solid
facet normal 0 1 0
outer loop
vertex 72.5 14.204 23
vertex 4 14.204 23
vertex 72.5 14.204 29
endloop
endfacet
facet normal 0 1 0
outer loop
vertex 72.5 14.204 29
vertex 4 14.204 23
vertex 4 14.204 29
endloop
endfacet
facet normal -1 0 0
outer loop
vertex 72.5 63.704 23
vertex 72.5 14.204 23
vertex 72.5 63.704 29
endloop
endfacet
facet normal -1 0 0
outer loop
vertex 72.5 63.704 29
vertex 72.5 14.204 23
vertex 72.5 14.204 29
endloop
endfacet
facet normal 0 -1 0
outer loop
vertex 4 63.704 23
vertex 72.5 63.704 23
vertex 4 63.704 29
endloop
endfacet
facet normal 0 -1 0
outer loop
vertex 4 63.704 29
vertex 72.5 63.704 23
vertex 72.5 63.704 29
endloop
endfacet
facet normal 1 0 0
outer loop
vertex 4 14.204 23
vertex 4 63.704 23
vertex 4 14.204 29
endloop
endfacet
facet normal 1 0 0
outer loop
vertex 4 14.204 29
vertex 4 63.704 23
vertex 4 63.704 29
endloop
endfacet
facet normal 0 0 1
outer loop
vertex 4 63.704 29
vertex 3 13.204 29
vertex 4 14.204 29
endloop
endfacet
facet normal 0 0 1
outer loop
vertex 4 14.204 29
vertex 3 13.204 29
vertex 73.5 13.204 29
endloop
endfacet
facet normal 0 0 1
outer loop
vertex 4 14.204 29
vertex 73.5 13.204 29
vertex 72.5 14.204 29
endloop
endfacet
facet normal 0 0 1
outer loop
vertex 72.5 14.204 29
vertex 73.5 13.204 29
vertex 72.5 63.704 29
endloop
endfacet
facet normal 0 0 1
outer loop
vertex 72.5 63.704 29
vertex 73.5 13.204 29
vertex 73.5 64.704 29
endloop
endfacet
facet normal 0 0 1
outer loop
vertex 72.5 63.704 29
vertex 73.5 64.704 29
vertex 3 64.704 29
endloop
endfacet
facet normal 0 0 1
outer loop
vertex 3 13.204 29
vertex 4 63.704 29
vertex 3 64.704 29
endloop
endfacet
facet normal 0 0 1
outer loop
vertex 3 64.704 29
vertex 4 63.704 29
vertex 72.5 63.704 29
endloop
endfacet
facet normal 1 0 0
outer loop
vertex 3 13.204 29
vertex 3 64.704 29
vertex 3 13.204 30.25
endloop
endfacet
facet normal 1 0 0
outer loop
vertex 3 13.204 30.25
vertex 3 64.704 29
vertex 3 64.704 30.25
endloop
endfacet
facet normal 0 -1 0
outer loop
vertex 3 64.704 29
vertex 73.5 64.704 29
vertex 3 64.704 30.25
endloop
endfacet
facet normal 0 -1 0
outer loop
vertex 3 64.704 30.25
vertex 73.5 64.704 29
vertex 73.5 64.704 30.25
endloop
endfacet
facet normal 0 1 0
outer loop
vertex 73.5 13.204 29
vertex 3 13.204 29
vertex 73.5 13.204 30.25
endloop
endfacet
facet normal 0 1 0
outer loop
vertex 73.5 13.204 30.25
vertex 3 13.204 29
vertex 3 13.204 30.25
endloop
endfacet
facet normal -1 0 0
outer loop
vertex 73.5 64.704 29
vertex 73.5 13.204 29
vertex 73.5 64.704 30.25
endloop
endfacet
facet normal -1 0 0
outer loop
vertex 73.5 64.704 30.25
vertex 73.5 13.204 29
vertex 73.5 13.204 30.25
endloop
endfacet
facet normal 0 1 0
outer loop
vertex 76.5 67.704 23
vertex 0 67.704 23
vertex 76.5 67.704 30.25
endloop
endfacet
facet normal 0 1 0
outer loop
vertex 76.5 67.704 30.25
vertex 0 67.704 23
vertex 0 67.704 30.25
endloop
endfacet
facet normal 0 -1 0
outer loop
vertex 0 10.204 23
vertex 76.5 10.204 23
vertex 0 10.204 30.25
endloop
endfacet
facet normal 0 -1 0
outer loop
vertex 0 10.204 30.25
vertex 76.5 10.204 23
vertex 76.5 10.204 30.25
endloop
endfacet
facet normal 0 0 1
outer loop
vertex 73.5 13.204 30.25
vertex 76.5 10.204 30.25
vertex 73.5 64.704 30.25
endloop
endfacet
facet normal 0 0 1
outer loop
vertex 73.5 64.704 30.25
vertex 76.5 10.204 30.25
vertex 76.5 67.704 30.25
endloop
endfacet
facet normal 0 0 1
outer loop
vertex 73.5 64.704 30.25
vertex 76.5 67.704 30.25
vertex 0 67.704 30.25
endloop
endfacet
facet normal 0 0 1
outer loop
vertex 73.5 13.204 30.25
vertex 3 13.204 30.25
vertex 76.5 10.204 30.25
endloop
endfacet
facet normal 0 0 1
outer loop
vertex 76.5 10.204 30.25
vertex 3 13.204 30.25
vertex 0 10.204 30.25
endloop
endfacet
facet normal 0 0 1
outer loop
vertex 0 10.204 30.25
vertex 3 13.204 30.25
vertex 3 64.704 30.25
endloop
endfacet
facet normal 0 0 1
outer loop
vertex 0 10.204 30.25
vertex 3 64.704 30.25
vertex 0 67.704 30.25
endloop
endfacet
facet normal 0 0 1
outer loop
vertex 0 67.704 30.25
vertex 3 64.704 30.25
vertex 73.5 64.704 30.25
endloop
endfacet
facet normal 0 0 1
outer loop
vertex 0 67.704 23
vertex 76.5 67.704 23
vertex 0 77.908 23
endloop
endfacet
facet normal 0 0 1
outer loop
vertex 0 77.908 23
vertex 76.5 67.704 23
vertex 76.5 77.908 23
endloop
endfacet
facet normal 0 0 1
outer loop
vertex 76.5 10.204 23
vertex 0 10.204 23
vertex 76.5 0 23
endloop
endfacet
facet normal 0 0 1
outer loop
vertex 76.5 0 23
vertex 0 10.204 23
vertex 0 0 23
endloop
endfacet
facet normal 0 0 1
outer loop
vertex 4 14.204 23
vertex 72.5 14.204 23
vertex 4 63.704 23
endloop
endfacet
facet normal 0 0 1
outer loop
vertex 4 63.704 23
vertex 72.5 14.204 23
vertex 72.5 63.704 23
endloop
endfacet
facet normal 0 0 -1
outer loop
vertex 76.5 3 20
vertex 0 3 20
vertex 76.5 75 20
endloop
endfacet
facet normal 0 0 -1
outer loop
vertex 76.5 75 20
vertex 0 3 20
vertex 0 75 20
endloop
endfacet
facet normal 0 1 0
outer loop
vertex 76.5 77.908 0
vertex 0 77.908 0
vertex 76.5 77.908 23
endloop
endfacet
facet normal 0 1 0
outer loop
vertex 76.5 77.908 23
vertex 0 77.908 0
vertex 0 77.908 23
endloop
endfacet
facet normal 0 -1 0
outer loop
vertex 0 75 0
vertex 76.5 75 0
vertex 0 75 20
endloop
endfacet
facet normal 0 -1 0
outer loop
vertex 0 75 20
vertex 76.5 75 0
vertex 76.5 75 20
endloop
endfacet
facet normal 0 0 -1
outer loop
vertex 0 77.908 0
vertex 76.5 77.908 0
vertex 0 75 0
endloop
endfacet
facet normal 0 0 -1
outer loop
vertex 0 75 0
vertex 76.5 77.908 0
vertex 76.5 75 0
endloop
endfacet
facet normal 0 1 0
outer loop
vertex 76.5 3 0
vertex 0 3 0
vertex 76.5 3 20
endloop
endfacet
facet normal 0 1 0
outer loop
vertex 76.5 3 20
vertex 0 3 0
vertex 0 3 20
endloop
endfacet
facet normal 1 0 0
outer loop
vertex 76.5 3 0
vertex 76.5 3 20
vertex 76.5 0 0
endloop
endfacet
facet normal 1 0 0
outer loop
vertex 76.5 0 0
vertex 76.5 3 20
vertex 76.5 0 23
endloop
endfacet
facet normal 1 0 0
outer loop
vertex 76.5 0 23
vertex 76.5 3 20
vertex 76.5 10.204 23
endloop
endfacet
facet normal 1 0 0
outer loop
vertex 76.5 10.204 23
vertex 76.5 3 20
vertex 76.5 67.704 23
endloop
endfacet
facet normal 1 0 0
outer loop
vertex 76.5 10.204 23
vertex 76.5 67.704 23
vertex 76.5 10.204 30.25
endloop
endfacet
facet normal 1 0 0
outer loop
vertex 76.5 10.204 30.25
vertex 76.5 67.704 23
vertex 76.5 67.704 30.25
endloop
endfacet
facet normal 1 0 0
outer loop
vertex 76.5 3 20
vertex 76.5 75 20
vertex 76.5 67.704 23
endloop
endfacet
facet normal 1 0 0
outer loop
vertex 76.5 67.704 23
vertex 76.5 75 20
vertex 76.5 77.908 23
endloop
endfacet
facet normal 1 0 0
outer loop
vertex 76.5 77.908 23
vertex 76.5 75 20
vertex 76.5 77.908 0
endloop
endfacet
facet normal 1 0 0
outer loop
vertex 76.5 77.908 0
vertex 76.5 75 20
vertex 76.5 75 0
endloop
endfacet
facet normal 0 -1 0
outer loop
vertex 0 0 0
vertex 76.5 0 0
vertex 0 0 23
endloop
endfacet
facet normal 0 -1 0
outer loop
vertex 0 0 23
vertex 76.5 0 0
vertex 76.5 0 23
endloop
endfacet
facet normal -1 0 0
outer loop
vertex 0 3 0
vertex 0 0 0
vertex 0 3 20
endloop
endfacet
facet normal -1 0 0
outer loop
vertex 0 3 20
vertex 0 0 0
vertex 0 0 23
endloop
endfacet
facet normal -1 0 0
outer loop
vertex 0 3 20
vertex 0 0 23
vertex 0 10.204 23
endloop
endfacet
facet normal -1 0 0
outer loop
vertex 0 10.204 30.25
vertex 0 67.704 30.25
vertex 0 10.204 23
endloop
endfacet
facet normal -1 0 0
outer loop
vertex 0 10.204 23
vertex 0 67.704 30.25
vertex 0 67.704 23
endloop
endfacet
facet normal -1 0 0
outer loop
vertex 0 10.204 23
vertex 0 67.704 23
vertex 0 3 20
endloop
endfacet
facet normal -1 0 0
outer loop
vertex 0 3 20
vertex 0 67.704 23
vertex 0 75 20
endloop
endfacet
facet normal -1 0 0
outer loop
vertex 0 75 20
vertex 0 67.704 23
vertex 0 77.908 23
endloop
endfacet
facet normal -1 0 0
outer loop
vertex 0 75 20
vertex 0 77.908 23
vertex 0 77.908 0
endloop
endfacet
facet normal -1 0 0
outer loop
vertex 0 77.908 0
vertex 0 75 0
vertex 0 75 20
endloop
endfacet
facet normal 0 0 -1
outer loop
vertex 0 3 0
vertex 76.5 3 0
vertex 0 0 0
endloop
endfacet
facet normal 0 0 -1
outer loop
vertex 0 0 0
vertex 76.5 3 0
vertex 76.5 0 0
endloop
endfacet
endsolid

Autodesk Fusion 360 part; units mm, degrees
sketch "Sketch3" plane through (0, 0, 0) normal (0, 0, 1) x (1, 0, 0)
  line L0 (0, 0) -> (76.5, 0)
  line L1 (76.5, 0) -> (76.5, 3)
  line L2 (76.5, 3) -> (0, 3)
  line L3 (0, 3) -> (0, 0)
  line L4 (0, 75) -> (76.5, 75)
  line L5 (76.5, 75) -> (76.5, 77.9078)
  line L6 (76.5, 77.9078) -> (0, 77.9078)
  line L7 (0, 77.9078) -> (0, 75)
  dimension "d24" = 76.5
  dimension "d25" = 3
  dimension "d26" = 76.5
  dimension "d27" = 72
extrude "Extrude4" add sketch "Sketch3" along normal blind 20 makes body 1 at (51, 3, 13.3333) makes body 2 at (51, 77.9078, 13.3333)
sketch "Sketch4" plane through (0, 0, 20) normal (0, 0, 1) x (-1, 0, 0)
  line L0 (0, -3) -> (0, 0)
  line L1 (0, 0) -> (-76.5, 0)
  line L2 (-76.5, 0) -> (-76.5, -3)
  line L3 (-76.5, -3) -> (0, -3)
  line L4 (0, -77.9078) -> (0, -75)
  line L5 (0, -75) -> (-76.5, -75)
  line L6 (-76.5, -75) -> (-76.5, -77.9078)
  line L7 (-76.5, -77.9078) -> (0, -77.9078)
  line L8 (0, -77.9078) -> (-76.5, -77.9078)
  line L9 (-76.5, -77.9078) -> (-76.5, 0)
  line L10 (-76.5, 0) -> (0, 0)
  line L11 (0, 0) -> (0, -77.9078)
extrude "Extrude5" add sketch "Sketch4" along normal blind 3 bodies 1 2
sketch "Sketch5" plane through (0, 0, 23) normal (0, 0, 1) x (-1, 0, 0)
  line L0 (0, 0) -> (-76.5, 0)
  line L1 (-76.5, 0) -> (-76.5, -77.9078)
  line L2 (-76.5, -77.9078) -> (0, -77.9078)
  line L3 (0, -77.9078) -> (0, 0)
  line L4 (0, -77.9078) -> (-76.5, 0) construction
  line L5 (-73.5, -64.7039) -> (-3, -64.7039)
  line L6 (-3, -64.7039) -> (-3, -13.2039)
  line L7 (-3, -13.2039) -> (-73.5, -13.2039)
  line L8 (-73.5, -13.2039) -> (-73.5, -64.7039)
  line L9 (-73.5, -64.7039) -> (-3, -13.2039) construction
  line L10 (-3, -64.7039) -> (-73.5, -13.2039) construction
  line L11 (-4, -14.2039) -> (-72.5, -14.2039)
  line L12 (-72.5, -14.2039) -> (-72.5, -63.7039)
  line L13 (-72.5, -63.7039) -> (-4, -63.7039)
  line L14 (-4, -63.7039) -> (-4, -14.2039)
  line L15 (0, -10.2039) -> (-76.5, -10.2039)
  line L16 (-76.5, -10.2039) -> (-76.5, -67.7039)
  line L17 (-76.5, -67.7039) -> (0, -67.7039)
  line L18 (0, -67.7039) -> (0, -10.2039)
  point P0 (-38.25, -38.9539)
  dimension "d35" = 70.5
  dimension "d36" = 51.5
  dimension "d38" = 3
extrude "Extrude8" add sketch "Sketch5" along normal blind 7.25 contours L1 L3 L15 L16 L17 L18 bodies 1
extrude "Extrude9" add sketch "Sketch5" along normal blind 6 contours L5 L6 L7 L8 bodies 1
extrude "Extrude6" [suppressed]
extrude "Extrude7" [suppressed]
equation "board_width = 51 mm"
equation "board_length = 70 mm"
equation "tolerance = 0.25 mm"
equation "board_holder_depth = 6 mm"
equation "board_thickness = 1.25 mm"
equation "board_overhang = 1 mm"
equation "thickness = 3 mm"
equation "bottom_part_gap = 72 mm"
equation "bottom_part_height = 20 mm"
equation "d24 = board_length + thickness * 2 + tolerance * 2"
equation "d25 = thickness"
equation "d26 = board_length + thickness * 2 + tolerance * 2"
equation "d27 = bottom_part_gap"
equation "d28 = bottom_part_height"
equation "d30 = thickness"
equation "d33 = board_holder_depth + board_thickness"
equation "d35 = board_length + tolerance * 2"
equation "d36 = board_width + tolerance * 2"
equation "d37 = -board_overhang"
equation "d38 = thickness"
equation "d39 = board_holder_depth"
equation "d41 = board_holder_depth + board_thickness"
equation "d43 = board_holder_depth"
